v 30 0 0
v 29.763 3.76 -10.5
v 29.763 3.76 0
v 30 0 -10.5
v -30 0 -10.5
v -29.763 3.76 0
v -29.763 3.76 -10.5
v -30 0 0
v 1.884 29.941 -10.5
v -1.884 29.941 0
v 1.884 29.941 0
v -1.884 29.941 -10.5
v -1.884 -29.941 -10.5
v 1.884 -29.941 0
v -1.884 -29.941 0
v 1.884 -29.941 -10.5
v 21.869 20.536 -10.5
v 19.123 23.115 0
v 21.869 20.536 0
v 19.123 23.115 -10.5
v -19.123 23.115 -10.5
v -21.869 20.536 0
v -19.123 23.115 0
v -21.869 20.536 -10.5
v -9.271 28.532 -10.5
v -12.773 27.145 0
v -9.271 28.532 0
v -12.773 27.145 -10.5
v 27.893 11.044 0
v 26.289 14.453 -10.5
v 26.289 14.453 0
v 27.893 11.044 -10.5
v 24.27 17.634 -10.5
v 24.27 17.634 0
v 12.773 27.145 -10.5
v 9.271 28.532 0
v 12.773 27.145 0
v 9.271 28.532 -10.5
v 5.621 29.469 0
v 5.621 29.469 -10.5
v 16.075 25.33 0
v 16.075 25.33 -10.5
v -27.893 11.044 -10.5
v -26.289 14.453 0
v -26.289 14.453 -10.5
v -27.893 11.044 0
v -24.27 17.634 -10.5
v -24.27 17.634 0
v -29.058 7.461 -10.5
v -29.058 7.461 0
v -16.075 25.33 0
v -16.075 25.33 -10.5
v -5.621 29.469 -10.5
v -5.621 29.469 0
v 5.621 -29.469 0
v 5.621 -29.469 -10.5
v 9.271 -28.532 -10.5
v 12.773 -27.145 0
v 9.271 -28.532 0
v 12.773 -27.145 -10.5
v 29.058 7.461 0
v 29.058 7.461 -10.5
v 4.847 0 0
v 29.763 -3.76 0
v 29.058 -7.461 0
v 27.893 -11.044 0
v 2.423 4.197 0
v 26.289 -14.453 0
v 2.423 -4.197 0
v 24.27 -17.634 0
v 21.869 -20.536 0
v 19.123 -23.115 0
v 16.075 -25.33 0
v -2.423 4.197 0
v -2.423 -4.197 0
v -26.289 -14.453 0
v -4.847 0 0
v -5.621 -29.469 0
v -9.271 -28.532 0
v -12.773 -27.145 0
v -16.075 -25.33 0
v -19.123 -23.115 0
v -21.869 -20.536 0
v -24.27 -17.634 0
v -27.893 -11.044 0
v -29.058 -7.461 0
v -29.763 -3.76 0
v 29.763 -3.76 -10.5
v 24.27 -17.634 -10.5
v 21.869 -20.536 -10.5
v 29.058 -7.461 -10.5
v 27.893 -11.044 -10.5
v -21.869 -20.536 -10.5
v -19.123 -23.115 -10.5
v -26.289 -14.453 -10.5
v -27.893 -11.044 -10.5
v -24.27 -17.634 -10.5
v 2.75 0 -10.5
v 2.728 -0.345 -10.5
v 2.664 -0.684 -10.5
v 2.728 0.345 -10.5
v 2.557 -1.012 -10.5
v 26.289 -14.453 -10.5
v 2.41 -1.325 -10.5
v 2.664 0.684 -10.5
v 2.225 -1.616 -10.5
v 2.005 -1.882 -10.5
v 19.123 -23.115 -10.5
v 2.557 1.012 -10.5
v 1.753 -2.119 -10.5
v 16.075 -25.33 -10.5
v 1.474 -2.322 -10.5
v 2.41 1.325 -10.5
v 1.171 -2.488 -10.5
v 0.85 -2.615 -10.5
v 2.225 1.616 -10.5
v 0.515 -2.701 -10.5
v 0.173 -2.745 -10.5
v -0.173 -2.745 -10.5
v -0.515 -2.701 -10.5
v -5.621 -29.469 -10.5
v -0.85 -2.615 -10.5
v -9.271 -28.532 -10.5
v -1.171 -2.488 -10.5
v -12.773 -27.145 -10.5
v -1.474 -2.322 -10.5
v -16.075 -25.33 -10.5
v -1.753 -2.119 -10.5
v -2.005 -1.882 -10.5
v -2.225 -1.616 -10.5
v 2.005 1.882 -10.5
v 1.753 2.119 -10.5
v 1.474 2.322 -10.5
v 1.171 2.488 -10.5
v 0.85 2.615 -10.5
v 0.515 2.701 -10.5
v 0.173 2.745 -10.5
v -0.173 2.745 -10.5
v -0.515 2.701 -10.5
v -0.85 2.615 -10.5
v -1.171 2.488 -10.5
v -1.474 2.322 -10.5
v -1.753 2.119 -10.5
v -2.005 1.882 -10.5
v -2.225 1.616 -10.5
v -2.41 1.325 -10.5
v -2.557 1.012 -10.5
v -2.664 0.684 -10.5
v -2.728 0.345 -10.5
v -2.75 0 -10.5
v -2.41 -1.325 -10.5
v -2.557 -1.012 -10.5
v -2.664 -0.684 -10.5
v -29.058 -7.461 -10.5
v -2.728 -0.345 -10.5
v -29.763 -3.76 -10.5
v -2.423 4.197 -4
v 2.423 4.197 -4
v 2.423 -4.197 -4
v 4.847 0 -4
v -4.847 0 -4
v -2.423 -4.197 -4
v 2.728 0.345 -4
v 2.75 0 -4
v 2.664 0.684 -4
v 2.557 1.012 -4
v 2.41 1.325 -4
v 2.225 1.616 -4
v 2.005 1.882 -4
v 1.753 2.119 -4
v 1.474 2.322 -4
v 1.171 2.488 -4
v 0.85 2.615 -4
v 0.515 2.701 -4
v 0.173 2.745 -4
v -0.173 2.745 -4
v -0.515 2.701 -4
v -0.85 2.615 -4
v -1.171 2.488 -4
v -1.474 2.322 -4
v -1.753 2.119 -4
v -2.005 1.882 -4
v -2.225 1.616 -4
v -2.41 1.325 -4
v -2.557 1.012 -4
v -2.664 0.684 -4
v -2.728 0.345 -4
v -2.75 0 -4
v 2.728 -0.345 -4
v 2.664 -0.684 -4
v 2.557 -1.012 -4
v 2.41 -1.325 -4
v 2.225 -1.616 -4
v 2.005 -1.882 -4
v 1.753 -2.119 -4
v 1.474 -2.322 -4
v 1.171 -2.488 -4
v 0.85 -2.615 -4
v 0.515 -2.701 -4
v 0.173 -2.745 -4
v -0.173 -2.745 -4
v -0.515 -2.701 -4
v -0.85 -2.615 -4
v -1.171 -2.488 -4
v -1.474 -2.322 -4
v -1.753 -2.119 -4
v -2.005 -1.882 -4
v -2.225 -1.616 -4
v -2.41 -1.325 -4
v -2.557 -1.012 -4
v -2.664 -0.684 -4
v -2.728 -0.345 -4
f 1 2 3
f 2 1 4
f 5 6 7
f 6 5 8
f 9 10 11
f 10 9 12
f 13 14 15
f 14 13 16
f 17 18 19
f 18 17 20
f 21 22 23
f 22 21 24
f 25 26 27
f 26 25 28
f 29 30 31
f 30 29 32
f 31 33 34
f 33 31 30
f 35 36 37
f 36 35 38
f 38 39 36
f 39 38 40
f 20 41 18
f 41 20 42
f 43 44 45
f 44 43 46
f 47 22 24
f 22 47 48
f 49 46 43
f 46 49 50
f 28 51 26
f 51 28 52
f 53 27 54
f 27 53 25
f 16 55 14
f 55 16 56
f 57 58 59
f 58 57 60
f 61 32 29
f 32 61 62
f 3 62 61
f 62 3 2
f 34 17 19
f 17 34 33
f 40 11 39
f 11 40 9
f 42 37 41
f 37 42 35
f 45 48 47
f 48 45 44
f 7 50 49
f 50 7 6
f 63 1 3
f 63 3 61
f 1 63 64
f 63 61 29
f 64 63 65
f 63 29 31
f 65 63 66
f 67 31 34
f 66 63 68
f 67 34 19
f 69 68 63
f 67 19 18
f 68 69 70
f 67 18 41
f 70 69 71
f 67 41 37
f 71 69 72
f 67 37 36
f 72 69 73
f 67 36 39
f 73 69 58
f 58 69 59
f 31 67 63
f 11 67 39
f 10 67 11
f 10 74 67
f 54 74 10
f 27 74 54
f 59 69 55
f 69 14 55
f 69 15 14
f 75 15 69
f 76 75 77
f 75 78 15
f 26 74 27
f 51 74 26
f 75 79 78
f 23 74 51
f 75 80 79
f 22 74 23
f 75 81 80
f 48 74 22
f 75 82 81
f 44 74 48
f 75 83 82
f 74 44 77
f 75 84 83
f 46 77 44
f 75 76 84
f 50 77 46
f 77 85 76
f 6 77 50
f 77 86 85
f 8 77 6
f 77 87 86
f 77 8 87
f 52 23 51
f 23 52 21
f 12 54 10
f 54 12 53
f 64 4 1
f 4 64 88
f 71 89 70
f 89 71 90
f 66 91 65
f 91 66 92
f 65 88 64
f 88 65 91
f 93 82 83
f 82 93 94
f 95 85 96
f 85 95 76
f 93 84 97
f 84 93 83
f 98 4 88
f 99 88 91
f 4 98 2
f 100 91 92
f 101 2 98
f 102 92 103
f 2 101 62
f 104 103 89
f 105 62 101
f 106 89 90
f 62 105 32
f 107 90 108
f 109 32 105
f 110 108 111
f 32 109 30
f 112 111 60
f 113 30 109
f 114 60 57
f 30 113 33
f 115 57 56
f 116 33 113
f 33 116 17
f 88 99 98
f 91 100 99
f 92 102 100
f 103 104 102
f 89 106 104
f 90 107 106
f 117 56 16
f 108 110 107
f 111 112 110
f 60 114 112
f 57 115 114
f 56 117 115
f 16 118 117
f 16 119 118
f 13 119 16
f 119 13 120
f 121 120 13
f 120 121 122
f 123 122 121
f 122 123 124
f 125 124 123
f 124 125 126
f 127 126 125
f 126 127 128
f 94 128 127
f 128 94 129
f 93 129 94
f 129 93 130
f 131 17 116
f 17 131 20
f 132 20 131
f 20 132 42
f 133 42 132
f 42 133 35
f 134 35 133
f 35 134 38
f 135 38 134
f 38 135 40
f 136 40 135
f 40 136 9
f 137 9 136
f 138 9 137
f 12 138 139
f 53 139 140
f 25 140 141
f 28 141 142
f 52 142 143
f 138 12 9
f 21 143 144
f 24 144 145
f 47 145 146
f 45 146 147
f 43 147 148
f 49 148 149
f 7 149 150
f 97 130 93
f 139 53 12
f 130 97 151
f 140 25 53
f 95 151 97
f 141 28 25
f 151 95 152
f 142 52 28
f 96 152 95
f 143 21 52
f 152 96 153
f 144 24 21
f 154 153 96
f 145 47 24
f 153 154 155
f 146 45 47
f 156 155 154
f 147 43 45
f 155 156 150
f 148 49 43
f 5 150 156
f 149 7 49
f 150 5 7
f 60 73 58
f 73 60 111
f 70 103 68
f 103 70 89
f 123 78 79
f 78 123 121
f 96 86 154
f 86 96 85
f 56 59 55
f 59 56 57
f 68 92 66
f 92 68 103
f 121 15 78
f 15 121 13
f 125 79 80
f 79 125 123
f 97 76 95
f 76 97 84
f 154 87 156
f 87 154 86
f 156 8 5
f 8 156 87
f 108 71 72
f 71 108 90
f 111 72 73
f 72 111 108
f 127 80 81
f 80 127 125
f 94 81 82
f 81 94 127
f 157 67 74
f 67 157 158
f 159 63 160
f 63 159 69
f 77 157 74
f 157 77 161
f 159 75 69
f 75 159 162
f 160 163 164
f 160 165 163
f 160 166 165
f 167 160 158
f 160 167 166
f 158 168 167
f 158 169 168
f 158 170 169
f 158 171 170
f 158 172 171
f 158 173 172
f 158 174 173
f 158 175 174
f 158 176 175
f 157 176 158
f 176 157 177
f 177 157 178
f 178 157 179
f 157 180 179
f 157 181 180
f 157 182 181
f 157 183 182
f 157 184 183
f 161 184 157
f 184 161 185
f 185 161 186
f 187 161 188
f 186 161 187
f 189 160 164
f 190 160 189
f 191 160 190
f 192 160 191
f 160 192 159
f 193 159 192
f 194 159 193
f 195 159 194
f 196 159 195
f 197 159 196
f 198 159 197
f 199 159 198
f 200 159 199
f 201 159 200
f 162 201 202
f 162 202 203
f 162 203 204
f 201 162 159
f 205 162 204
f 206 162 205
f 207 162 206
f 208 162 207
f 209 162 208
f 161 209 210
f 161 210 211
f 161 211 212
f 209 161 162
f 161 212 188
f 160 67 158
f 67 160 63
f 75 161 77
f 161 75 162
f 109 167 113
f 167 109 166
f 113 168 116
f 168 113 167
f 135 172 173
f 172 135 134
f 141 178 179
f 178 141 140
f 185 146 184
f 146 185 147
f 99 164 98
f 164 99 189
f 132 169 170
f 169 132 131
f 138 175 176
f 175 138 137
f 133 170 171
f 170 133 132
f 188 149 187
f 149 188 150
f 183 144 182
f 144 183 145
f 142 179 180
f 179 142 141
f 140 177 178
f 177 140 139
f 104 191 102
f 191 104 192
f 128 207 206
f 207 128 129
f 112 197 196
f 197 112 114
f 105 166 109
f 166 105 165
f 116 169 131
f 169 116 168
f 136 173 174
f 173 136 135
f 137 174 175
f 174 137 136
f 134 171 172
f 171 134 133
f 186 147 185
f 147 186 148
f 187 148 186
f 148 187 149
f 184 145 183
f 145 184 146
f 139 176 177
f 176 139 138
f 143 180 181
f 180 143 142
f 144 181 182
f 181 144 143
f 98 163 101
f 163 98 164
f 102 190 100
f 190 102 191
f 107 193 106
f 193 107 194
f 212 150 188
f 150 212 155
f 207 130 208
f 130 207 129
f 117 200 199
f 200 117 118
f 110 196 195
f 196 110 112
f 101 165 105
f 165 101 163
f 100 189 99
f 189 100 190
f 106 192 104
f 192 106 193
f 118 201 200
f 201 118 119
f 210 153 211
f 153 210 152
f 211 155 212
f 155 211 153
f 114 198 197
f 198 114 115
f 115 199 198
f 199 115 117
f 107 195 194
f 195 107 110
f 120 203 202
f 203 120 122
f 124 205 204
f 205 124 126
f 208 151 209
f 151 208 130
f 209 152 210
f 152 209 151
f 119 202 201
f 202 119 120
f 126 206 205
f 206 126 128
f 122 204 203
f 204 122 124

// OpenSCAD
$fn = 50;


difference() {
	union() {
		translate(v = [0, 0, -10.5000000000]) {
			cylinder(h = 10.5000000000, r = 30.0000000000);
		}
		translate(v = [0, 0, -9.0000000000]) {
			cylinder(h = 9, r = 2.8750000000);
		}
	}
	union() {
		translate(v = [0, 0, 0]) {
			rotate(a = [0, 0, 0]) {
				difference() {
					union() {
						translate(v = [0, 0, -4]) {
							#linear_extrude(height = 4) {
								polygon(points = [[4.8468000000, 0.0000000000], [2.4234000000, 4.1974519271], [-2.4234000000, 4.1974519271], [-4.8468000000, 0.0000000000], [-2.4234000000, -4.1974519271], [2.4234000000, -4.1974519271]]);
							}
						}
					}
					union();
				}
			}
		}
		#translate(v = [0, 0, -100.0000000000]) {
			cylinder(h = 200, r = 2.7500000000);
		}
	}
}
